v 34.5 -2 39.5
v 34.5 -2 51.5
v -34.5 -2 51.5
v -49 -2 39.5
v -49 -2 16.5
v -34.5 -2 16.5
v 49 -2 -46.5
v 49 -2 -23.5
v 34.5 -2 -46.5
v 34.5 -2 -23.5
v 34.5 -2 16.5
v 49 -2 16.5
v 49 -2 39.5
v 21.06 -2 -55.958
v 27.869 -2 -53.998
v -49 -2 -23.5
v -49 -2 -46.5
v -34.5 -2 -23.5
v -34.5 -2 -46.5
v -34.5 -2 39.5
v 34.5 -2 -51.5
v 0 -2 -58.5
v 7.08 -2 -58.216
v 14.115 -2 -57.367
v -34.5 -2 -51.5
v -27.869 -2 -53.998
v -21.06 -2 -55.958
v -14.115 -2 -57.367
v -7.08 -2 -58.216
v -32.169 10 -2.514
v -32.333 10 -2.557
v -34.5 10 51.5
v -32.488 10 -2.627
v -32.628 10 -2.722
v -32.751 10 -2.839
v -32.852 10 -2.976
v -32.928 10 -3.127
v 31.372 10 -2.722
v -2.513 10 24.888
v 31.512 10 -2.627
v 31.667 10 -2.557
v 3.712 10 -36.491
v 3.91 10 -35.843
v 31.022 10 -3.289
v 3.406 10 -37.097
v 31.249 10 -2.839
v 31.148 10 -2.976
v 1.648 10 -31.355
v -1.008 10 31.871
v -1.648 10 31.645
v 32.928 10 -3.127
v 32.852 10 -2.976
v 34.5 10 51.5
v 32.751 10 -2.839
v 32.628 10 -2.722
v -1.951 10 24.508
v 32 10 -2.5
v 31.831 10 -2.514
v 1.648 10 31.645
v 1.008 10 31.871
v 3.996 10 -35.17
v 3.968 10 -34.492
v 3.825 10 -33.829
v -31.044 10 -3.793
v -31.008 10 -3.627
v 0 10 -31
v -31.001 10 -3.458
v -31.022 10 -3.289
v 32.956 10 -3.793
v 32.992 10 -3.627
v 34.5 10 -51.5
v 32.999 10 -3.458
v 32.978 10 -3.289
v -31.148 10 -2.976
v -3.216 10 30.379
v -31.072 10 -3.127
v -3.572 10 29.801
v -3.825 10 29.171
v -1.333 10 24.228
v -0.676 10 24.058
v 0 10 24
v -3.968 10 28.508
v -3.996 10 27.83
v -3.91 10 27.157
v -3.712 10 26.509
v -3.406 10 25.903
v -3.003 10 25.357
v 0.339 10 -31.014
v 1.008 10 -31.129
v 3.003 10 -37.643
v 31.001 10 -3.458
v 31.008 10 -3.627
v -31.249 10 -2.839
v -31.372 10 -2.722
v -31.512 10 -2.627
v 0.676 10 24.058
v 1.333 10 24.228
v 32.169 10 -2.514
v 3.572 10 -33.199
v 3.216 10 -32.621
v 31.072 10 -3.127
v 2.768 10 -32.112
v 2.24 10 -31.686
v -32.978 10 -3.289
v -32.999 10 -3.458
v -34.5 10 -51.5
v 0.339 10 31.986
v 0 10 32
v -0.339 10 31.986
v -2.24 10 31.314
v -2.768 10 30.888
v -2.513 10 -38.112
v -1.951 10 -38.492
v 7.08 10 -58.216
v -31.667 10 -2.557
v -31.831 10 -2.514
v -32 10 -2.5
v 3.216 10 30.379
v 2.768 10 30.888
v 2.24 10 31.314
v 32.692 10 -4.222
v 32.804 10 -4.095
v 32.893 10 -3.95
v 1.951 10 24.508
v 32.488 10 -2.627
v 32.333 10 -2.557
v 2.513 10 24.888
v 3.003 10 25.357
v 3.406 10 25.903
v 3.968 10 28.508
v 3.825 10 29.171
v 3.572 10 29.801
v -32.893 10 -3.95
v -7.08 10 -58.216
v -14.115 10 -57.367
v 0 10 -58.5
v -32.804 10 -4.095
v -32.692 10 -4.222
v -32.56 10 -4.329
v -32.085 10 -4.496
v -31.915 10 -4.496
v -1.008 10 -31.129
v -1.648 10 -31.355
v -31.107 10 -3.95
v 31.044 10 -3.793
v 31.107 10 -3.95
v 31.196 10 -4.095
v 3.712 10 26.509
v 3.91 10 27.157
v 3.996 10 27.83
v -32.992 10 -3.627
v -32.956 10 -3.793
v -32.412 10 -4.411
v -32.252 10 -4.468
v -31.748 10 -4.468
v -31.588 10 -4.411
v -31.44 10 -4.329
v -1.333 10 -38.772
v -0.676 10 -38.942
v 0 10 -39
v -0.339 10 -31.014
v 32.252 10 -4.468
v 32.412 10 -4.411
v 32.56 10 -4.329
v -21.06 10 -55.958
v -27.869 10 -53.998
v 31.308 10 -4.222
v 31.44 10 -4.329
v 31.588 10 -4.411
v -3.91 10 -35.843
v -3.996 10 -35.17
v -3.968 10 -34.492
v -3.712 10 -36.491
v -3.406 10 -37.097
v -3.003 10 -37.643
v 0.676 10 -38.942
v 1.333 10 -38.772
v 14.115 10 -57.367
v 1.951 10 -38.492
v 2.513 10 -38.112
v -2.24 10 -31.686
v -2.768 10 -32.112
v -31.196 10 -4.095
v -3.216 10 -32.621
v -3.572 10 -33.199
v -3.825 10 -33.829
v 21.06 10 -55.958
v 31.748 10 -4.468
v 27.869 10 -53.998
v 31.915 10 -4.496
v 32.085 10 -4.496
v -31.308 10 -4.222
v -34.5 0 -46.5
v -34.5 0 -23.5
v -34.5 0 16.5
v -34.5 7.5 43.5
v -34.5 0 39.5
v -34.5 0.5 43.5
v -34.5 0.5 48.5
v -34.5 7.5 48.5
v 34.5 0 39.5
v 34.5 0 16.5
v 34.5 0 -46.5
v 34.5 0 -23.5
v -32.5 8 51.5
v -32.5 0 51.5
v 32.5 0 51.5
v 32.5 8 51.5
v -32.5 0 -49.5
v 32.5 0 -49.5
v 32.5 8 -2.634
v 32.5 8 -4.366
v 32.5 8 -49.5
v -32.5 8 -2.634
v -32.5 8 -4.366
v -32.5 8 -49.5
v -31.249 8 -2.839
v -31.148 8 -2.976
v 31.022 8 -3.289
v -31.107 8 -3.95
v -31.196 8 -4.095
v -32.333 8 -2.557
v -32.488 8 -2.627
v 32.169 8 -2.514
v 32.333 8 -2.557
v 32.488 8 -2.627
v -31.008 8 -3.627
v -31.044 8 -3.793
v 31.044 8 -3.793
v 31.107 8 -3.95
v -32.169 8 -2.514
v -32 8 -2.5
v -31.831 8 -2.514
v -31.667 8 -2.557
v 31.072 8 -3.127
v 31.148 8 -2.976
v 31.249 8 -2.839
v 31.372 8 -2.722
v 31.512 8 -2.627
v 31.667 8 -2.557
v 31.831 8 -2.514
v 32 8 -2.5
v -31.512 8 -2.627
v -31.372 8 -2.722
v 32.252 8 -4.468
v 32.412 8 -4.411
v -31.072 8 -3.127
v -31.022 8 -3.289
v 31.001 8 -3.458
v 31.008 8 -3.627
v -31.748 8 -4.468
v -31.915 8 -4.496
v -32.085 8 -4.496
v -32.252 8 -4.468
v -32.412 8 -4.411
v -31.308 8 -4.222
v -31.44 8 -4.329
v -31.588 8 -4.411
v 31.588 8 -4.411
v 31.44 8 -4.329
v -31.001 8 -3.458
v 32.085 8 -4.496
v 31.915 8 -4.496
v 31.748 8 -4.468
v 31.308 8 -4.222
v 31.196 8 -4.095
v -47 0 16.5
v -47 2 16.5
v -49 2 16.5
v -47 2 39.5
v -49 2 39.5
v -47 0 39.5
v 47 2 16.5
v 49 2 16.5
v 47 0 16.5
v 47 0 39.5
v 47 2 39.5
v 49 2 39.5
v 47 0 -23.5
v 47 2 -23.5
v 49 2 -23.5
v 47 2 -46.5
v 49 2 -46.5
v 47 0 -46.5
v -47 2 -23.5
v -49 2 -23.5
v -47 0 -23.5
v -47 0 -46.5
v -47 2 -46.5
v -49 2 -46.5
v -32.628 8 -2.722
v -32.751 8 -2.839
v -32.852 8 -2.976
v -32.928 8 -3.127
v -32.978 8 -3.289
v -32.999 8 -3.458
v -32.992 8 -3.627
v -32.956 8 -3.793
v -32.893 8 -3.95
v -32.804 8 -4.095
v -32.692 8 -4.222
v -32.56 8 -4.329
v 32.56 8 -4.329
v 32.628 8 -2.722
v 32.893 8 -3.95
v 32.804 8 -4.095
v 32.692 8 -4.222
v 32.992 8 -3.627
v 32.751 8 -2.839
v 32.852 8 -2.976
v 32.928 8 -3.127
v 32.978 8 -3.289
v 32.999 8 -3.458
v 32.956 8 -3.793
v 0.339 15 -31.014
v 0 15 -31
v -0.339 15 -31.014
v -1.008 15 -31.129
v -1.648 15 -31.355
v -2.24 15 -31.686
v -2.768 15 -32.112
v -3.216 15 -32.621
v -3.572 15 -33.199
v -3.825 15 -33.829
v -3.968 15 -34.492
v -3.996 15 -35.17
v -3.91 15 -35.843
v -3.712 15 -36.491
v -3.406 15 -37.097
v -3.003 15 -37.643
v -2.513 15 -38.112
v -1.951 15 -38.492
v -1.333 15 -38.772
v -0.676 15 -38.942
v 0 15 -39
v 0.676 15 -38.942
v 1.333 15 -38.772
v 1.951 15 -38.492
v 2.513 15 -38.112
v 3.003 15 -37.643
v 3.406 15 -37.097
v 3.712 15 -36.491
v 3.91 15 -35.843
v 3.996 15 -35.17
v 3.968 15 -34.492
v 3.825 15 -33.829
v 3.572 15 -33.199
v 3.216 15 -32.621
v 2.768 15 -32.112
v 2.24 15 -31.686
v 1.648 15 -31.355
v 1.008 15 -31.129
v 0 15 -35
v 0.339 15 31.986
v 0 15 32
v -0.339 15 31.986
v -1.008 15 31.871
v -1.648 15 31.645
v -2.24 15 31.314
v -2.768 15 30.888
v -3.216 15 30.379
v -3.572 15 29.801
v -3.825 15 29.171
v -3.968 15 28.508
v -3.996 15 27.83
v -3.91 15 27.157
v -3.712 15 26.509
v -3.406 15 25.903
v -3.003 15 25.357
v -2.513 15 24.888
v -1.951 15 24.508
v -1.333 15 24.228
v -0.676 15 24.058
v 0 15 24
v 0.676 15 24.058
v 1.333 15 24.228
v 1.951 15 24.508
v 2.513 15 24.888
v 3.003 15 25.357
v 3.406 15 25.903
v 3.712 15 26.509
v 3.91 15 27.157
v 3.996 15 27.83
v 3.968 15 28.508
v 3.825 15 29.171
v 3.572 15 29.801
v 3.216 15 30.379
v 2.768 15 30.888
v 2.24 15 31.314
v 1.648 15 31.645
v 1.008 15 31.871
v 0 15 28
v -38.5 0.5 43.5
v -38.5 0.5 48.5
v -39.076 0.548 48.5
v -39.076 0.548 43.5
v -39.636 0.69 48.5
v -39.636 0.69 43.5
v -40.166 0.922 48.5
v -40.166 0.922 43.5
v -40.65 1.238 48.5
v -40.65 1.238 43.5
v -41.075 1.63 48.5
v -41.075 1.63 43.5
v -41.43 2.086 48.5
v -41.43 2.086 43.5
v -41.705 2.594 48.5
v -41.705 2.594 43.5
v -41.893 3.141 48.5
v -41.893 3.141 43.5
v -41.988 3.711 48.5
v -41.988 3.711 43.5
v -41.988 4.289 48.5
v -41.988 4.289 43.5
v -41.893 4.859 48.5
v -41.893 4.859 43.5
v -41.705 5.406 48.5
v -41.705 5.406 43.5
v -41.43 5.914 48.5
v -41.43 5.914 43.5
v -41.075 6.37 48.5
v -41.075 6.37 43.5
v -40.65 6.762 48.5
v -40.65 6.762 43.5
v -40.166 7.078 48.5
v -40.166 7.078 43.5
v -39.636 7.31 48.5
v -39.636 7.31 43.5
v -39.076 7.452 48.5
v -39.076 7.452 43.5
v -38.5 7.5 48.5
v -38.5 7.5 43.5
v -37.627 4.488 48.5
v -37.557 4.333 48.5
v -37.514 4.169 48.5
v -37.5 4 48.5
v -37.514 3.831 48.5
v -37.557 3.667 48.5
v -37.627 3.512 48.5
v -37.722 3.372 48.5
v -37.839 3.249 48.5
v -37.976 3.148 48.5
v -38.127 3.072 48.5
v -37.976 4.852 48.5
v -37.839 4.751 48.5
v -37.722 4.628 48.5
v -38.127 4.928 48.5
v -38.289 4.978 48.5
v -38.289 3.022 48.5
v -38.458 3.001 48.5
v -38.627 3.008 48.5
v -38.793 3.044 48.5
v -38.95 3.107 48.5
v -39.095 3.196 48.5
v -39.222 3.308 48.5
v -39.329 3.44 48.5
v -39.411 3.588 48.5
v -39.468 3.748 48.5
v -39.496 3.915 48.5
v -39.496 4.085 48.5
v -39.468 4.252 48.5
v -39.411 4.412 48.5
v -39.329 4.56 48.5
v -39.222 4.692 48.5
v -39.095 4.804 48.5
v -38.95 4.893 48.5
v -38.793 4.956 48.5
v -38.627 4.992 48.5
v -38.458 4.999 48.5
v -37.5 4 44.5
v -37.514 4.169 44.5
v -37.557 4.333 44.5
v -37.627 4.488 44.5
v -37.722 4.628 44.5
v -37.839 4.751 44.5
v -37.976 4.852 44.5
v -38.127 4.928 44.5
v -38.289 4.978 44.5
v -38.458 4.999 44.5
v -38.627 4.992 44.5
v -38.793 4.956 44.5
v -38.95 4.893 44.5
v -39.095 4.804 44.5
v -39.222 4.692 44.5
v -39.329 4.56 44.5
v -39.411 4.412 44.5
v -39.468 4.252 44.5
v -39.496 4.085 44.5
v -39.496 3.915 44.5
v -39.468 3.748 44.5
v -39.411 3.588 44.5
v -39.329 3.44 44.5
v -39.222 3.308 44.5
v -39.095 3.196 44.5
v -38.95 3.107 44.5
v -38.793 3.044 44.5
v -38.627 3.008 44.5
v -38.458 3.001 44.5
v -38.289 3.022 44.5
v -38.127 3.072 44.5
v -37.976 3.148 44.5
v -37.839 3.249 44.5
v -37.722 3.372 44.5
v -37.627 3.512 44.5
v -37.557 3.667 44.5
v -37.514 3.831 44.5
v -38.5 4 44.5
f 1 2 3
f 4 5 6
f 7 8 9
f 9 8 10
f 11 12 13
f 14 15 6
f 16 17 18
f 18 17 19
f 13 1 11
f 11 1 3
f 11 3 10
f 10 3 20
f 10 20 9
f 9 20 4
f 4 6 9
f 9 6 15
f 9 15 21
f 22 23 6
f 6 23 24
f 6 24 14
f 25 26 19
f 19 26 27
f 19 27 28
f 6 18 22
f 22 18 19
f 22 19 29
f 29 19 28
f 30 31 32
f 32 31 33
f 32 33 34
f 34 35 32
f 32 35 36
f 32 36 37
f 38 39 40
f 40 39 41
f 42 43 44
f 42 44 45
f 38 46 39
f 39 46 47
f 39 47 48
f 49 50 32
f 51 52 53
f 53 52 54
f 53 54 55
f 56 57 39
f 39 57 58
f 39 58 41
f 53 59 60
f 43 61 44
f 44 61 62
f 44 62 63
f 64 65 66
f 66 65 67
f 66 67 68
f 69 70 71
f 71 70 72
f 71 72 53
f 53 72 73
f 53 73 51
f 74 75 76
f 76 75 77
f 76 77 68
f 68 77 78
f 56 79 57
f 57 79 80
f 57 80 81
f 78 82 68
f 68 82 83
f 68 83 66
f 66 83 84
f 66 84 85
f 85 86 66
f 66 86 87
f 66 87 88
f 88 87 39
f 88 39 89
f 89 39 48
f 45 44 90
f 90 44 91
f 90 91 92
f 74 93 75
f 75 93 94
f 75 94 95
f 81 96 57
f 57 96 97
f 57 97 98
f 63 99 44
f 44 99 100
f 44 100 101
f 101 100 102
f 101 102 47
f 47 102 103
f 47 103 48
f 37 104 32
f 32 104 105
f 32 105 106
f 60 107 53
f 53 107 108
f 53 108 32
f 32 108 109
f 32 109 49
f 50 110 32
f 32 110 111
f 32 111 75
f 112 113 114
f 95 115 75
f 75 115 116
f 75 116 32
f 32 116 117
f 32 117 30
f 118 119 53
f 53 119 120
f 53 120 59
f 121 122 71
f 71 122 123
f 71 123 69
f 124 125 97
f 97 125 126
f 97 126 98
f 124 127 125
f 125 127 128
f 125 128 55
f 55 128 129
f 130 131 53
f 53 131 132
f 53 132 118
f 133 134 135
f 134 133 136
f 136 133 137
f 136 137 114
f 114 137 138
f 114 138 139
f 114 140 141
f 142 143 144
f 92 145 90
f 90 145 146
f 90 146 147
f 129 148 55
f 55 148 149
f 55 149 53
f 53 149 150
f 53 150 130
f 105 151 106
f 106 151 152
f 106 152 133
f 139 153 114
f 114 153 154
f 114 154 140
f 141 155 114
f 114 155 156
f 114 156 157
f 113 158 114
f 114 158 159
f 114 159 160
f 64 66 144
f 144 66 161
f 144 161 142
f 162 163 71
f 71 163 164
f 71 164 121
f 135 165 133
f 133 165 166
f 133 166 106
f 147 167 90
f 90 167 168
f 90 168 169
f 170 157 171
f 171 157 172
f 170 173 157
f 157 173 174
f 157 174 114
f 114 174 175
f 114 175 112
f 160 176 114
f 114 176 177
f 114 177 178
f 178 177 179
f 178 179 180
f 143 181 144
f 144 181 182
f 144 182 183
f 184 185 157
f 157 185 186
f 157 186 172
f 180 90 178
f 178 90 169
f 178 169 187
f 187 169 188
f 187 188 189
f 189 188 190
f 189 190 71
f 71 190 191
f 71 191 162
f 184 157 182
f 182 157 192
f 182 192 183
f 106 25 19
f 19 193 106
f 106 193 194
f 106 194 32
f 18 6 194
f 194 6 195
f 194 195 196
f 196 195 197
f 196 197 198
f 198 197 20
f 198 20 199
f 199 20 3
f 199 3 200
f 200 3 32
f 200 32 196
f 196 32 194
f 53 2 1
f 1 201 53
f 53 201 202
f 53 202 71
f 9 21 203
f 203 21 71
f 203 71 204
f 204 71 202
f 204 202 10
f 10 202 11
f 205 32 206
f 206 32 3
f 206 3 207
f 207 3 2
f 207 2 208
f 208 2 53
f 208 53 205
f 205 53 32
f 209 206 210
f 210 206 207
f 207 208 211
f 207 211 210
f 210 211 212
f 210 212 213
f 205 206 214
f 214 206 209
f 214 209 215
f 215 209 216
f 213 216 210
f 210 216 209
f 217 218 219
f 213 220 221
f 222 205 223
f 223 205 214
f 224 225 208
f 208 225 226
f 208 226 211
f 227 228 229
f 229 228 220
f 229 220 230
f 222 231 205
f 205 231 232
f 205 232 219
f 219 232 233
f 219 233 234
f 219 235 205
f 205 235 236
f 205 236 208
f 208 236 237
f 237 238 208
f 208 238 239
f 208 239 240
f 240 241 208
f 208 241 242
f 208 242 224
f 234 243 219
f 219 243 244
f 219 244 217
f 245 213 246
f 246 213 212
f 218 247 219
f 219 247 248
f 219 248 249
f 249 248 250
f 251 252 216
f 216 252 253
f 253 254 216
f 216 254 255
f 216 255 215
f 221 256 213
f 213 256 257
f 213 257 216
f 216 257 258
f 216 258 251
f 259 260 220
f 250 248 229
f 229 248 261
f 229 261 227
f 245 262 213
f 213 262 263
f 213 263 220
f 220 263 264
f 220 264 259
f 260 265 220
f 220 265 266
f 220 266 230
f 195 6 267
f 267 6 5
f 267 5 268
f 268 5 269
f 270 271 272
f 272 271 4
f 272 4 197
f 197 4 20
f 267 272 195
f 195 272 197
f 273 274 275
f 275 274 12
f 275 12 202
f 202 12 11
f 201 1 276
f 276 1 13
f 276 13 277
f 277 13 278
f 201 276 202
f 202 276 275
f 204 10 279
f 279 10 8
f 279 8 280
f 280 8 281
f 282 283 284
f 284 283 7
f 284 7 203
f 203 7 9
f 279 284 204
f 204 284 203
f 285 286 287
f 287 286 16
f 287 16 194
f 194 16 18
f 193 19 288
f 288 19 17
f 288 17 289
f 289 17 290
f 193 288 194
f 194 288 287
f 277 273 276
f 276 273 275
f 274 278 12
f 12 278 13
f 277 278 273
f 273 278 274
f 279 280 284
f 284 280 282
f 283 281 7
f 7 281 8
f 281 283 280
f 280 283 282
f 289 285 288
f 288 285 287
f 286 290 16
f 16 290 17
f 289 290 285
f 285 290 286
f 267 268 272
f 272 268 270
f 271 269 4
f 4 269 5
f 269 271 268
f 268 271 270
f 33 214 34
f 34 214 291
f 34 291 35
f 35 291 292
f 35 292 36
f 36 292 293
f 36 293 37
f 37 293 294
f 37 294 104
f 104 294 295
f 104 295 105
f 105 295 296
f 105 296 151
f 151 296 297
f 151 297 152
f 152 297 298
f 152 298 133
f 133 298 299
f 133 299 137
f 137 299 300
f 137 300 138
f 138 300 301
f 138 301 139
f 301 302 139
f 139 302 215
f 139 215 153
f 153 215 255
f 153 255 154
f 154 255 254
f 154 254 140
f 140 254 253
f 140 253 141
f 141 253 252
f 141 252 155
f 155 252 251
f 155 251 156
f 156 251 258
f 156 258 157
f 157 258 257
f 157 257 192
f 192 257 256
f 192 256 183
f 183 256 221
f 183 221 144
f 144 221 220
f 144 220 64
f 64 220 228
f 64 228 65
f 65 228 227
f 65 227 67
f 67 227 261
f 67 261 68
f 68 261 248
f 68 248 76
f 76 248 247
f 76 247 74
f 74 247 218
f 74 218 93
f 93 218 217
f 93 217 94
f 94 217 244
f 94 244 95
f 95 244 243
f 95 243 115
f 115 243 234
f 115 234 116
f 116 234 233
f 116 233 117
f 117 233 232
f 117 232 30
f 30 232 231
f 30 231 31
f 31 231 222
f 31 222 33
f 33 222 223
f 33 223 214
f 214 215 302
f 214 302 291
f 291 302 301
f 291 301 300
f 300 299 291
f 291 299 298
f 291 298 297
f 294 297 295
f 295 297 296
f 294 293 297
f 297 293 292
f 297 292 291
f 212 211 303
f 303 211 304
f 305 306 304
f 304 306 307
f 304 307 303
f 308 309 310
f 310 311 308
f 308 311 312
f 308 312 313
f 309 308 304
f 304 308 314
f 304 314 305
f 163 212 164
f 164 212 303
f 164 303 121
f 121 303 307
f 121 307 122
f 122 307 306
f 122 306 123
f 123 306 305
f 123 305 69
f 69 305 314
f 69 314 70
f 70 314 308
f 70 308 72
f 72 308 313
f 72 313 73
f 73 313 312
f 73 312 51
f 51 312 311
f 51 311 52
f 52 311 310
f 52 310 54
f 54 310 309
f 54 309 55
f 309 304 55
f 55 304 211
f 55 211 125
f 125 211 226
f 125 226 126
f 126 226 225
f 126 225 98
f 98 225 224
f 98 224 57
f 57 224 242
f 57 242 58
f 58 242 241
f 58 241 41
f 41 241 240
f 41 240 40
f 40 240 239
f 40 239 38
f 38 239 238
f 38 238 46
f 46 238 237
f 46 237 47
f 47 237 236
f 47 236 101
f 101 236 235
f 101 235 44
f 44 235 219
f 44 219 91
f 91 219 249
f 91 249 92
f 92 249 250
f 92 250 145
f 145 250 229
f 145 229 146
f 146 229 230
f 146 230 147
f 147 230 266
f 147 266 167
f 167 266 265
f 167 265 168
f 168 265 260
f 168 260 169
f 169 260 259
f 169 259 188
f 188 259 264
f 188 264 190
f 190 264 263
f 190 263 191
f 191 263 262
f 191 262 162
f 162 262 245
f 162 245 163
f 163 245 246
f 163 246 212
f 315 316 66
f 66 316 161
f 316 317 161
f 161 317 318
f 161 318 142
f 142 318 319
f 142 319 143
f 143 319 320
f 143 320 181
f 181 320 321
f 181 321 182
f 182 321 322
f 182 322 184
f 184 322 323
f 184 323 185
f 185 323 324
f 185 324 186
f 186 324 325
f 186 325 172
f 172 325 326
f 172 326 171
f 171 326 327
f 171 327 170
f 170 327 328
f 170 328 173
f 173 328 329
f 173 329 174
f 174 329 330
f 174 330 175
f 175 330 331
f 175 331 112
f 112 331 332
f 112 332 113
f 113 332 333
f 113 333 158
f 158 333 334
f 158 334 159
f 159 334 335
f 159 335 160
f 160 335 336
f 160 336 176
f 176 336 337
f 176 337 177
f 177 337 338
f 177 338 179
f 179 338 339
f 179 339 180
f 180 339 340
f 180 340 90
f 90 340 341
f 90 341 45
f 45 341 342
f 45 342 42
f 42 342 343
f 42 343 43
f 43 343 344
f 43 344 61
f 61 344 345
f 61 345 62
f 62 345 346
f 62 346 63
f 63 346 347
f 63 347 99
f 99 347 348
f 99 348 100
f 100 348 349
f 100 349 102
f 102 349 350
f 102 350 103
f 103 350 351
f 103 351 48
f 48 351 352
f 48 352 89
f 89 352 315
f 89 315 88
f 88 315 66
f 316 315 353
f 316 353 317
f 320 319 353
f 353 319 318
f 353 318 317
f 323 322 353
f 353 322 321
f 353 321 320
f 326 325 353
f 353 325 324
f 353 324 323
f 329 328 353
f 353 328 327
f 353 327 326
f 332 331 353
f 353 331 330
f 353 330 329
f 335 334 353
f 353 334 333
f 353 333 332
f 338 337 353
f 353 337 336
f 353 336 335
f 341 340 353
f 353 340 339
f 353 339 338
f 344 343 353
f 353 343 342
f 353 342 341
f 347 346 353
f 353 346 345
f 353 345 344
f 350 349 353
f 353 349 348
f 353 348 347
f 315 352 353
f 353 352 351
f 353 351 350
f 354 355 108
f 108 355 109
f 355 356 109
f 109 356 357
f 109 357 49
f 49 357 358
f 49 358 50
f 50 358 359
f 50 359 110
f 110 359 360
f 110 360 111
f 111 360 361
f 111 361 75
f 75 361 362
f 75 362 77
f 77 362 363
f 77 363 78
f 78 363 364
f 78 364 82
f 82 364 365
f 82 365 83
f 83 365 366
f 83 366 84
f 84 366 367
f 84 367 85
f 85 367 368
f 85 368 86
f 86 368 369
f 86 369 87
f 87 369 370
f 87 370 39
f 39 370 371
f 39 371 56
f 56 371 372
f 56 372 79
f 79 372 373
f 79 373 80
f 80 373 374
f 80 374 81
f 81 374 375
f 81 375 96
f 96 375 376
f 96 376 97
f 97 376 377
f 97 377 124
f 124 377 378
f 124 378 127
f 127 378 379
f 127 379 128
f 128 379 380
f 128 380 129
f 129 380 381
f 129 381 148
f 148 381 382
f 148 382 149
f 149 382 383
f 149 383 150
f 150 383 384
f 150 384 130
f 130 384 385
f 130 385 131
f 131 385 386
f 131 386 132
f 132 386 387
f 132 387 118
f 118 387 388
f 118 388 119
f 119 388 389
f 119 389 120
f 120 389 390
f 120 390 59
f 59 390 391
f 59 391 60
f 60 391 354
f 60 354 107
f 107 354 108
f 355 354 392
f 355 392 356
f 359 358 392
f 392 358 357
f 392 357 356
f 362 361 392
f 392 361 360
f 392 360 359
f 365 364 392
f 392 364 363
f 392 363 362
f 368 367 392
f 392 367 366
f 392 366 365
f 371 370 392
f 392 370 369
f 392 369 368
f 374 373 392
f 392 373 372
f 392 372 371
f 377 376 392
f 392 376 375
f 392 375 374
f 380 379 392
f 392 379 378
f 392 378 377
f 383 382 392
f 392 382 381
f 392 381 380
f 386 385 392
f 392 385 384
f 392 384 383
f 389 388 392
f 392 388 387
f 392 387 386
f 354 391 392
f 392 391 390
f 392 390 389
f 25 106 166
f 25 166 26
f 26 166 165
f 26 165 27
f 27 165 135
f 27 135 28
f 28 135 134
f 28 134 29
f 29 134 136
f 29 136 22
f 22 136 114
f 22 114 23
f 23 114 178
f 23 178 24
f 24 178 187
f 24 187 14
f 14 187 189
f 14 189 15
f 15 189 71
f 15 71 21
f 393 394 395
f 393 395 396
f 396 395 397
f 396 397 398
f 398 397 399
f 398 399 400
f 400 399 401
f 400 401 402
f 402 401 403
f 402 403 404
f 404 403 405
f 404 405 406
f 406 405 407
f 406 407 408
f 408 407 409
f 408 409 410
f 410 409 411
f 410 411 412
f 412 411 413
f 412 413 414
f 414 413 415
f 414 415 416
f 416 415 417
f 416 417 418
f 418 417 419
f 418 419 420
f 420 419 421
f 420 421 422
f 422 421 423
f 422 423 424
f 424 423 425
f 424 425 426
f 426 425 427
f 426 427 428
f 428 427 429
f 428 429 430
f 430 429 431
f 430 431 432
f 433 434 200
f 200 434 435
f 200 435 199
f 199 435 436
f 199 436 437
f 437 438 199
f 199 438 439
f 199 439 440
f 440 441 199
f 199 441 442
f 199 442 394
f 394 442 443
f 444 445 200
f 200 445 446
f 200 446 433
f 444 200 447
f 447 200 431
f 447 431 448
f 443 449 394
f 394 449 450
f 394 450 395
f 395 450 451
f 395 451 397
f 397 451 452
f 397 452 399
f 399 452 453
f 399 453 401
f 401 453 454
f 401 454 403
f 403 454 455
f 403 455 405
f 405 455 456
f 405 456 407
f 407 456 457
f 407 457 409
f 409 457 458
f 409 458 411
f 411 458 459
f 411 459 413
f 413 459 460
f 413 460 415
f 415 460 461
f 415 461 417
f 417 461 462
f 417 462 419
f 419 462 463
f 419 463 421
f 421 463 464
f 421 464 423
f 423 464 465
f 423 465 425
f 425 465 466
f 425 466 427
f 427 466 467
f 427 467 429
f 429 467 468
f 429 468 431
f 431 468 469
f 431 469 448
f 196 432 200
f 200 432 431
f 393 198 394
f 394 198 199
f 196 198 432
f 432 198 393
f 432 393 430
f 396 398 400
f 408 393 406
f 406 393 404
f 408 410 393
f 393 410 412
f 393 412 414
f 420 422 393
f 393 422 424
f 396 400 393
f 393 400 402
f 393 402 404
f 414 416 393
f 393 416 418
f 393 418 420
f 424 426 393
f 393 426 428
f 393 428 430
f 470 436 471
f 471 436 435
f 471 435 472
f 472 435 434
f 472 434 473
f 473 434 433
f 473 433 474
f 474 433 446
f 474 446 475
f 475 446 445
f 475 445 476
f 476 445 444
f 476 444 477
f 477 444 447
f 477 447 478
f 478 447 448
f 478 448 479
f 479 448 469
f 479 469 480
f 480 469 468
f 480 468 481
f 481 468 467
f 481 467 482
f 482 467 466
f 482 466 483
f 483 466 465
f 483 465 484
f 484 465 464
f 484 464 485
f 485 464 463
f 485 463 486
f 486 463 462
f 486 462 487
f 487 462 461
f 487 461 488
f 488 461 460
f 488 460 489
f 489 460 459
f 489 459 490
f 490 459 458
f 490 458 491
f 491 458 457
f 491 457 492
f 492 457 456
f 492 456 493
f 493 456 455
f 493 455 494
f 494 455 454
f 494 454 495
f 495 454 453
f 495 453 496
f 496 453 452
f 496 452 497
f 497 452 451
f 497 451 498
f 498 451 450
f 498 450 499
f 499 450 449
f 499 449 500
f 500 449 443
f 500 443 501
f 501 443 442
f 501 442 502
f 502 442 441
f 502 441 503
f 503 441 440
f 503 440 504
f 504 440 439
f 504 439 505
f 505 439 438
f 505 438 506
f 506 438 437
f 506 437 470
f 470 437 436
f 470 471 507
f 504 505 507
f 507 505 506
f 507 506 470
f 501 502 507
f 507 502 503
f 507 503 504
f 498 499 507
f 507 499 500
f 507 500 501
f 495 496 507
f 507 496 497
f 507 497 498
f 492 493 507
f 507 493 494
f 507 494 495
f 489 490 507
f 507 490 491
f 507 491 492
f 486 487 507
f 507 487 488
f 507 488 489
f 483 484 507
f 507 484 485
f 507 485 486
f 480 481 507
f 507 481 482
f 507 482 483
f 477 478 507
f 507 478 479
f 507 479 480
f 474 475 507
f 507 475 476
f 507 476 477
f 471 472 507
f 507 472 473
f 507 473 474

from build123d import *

# Parameters (mm, degrees)
CROQUIS1_W                 = 69
CROQUIS1_H                 = 103
CROQUIS1_W_2               = 65
CROQUIS1_H_2               = 99
CROQUIS1_W_3               = 63
CROQUIS1_H_3               = 97
CROQUIS1_H_4               = 2
CROQUIS1_H_5               = 7
SALIENTE_EXTRUIR1_DEPTH    = 2
SALIENTE_EXTRUIR2_DEPTH    = 8
SALIENTE_EXTRUIR3_START    = -10
CROQUIS3_W                 = 69
CROQUIS3_H                 = 110
SALIENTE_EXTRUIR3_DEPTH    = 2
CROQUIS5_W                 = 12.5
CROQUIS5_H                 = 23
SALIENTE_EXTRUIR4_DEPTH    = 2
CROQUIS5_3_W               = 2
CROQUIS5_3_H               = 23
SALIENTE_EXTRUIR5_DEPTH    = 4
CORTAR_EXTRUIR1_DEPTH      = 78.24797732
CORTAR_EXTRUIR1_DEPTH_BACK = 2
CROQUIS6_R                 = 1
CROQUIS7_R                 = 4
SALIENTE_EXTRUIR6_DEPTH    = 5
CORTAR_EXTRUIR2_DEPTH      = 78.770495691
CORTAR_EXTRUIR2_DEPTH_BACK = 78.770495691
SALIENTE_EXTRUIR7_REACH    = 79.77
SALIENTE_EXTRUIR8_START    = -3
SALIENTE_EXTRUIR8_DEPTH    = 5
CORTAR_EXTRUIR3_START      = -3
CROQUIS10_3_R              = 1
CORTAR_EXTRUIR3_DEPTH      = 4


with BuildPart() as part:
    # Croquis1 → Saliente-Extruir1 (new body)
    # profile 1 of 6: a face of its own
    with BuildSketch(Plane(origin=(0, 0, 0), x_dir=(1, 0, 0), z_dir=(0, 1, 0))):
        Rectangle(CROQUIS1_W, CROQUIS1_H)
        Rectangle(CROQUIS1_W_2, CROQUIS1_H_2, mode=Mode.SUBTRACT)
    # profile 2 of 6: a face of its own
    with BuildSketch(Plane(origin=(0, 0, 0), x_dir=(1, 0, 0), z_dir=(0, 1, 0))):
        Rectangle(CROQUIS1_W_2, CROQUIS1_H_2)
        Rectangle(CROQUIS1_W_3, CROQUIS1_H_3, mode=Mode.SUBTRACT)
    # profile 3 of 6: a face of its own
    with BuildSketch(Plane(origin=(0, 0, 0), x_dir=(1, 0, 0), z_dir=(0, 1, 0))):
        Polygon((-31.5, 48.5), (31.5, 48.5), (31.5, -48.5), align=None)
    # profile 4 of 6: a face of its own
    with BuildSketch(Plane(origin=(0, 0, 0), x_dir=(1, 0, 0), z_dir=(0, 1, 0))):
        Polygon((-31.5, 48.5), (31.5, -48.5), (-31.5, -48.5), align=None)
    # profile 5 of 6: a face of its own
    with BuildSketch(Plane(origin=(0, 0, 0), x_dir=(1, 0, 0), z_dir=(0, 1, 0))):
        with Locations((0, -50.5)):
            Rectangle(CROQUIS1_W_2, CROQUIS1_H_4)
    # profile 6 of 6: a face of its own
    with BuildSketch(Plane(origin=(0, 0, 0), x_dir=(1, 0, 0), z_dir=(0, 1, 0))):
        with Locations((0, 55)):
            Rectangle(CROQUIS1_W, CROQUIS1_H_5)
    extrude(amount=-SALIENTE_EXTRUIR1_DEPTH)

    # Croquis1<3> → Saliente-Extruir2 (add)
    with BuildSketch(Plane(origin=(0, 0, 0), x_dir=(1, 0, 0), z_dir=(0, 1, 0))):
        Polygon((-32.5, -49.5), (-32.5, 49.5), (32.5, 49.5), (32.5, -49.5), (32.5, -51.5), (34.5, -51.5), (34.5, 51.5), (-34.5, 51.5), (-34.5, -51.5), (-32.5, -51.5), align=None)
    extrude(amount=SALIENTE_EXTRUIR2_DEPTH)

    # Croquis3 → Saliente-Extruir3 (add)
    with BuildSketch(Plane.XZ.offset(2).offset(SALIENTE_EXTRUIR3_START)):
        with Locations((0, -3.5)):
            Rectangle(CROQUIS3_W, CROQUIS3_H)
    extrude(amount=-SALIENTE_EXTRUIR3_DEPTH)

    # Croquis5 → Saliente-Extruir4 (add)
    with BuildSketch(Plane.XZ.offset(2)):
        with Locations((-40.75, 28)):
            Rectangle(CROQUIS5_W, CROQUIS5_H)
        with Locations((40.75, 28)):
            Rectangle(CROQUIS5_W, CROQUIS5_H)
        with Locations((40.75, -35)):
            Rectangle(CROQUIS5_W, CROQUIS5_H)
        with Locations((-40.75, -35)):
            Rectangle(CROQUIS5_W, CROQUIS5_H)
    extrude(amount=-SALIENTE_EXTRUIR4_DEPTH)

    # Croquis5<3> → Saliente-Extruir5 (add)
    with BuildSketch(Plane.XZ.offset(2)):
        with Locations((48, 28)):
            Rectangle(CROQUIS5_3_W, CROQUIS5_3_H)
        with Locations((48, -35)):
            Rectangle(CROQUIS5_3_W, CROQUIS5_3_H)
        with Locations((-48, -35)):
            Rectangle(CROQUIS5_3_W, CROQUIS5_3_H)
        with Locations((-48, 28)):
            Rectangle(CROQUIS5_3_W, CROQUIS5_3_H)
    extrude(amount=-SALIENTE_EXTRUIR5_DEPTH)

    # Croquis6 → Cortar-Extruir1 (cut, two sides: drawn at the far end of the back side and taken through both)
    with BuildSketch(Plane(origin=(0, 10, 0), x_dir=(1, 0, 0), z_dir=(0, 1, 0)).offset(-CORTAR_EXTRUIR1_DEPTH_BACK)):
        with Locations(Location((32, 3.5, 0), (0, 0, 270))):
            Circle(CROQUIS6_R)
        with Locations(Location((-32, 3.5, 0), (0, 0, 270))):
            Circle(CROQUIS6_R)
    extrude(amount=CORTAR_EXTRUIR1_DEPTH + CORTAR_EXTRUIR1_DEPTH_BACK, mode=Mode.SUBTRACT)

    # Croquis7 → Saliente-Extruir6 (add)
    with BuildSketch(Plane(origin=(0, 10, 0), x_dir=(1, 0, 0), z_dir=(0, 1, 0))):
        with Locations(Location((0, 35, 0), (0, 0, 270))):
            Circle(CROQUIS7_R)
        with Locations(Location((0, -28, 0), (0, 0, 270))):
            Circle(CROQUIS7_R)
    extrude(amount=SALIENTE_EXTRUIR6_DEPTH)

    # Croquis8 → Cortar-Extruir2 (cut, two sides: drawn at the far end of the back side and taken through both)
    with BuildSketch(Plane(origin=(0, 0, 0), x_dir=(1, 0, 0), z_dir=(0, 1, 0)).offset(-CORTAR_EXTRUIR2_DEPTH_BACK)):
        with BuildLine():
            Line((-34.5, 58.5), (-34.5, 51.5))
            ThreePointArc((-34.5, 51.5), (-17.601491564, 56.73235051), (-3.06e-07, 58.5))
            Line((-3.06e-07, 58.5), (-34.5, 58.5))
        make_face()
        with BuildLine():
            Line((34.5, 58.5), (-3.06e-07, 58.5))
            ThreePointArc((-3.06e-07, 58.5), (17.601491264, 56.732350571), (34.5, 51.5))
            Line((34.5, 51.5), (34.5, 58.5))
        make_face()
    extrude(amount=CORTAR_EXTRUIR2_DEPTH + CORTAR_EXTRUIR2_DEPTH_BACK, mode=Mode.SUBTRACT)

    # Croquis9 → Saliente-Extruir7 (add, up to next)
    with BuildSketch(Plane(origin=(0, 0, 0), x_dir=(1, 0, 0), z_dir=(0, 1, 0)), mode=Mode.PRIVATE) as saliente_extruir7_sk1:
        with BuildLine():
            Line((-34.5, 51.5), (34.5, 51.5))
            ThreePointArc((34.5, 51.5), (0, 58.5), (-34.5, 51.5))
        make_face()
    saliente_extruir7_tool1 = extrude(saliente_extruir7_sk1.sketch, amount=SALIENTE_EXTRUIR7_REACH, mode=Mode.PRIVATE) - part.part
    add(saliente_extruir7_tool1.solids().sort_by_distance((0, 0, -54.309712))[0])

    # Croquis10 → Saliente-Extruir8 (add)
    with BuildSketch(Plane.XY.offset(51.5).offset(SALIENTE_EXTRUIR8_START)):
        with BuildLine():
            Line((-38.5, 0.5), (-34.5, 0.5))
            Line((-34.5, 0.5), (-34.5, 7.5))
            Line((-34.5, 7.5), (-38.5, 7.5))
            ThreePointArc((-38.5, 7.5), (-42, 4), (-38.5, 0.5))
        make_face()
    extrude(amount=-SALIENTE_EXTRUIR8_DEPTH)

    # Croquis10<3> → Cortar-Extruir3 (cut)
    with BuildSketch(Plane.XY.offset(51.5).offset(CORTAR_EXTRUIR3_START)):
        with Locations((-38.5, 4)):
            Circle(CROQUIS10_3_R)
    extrude(amount=-CORTAR_EXTRUIR3_DEPTH, mode=Mode.SUBTRACT)


solid = part.part
